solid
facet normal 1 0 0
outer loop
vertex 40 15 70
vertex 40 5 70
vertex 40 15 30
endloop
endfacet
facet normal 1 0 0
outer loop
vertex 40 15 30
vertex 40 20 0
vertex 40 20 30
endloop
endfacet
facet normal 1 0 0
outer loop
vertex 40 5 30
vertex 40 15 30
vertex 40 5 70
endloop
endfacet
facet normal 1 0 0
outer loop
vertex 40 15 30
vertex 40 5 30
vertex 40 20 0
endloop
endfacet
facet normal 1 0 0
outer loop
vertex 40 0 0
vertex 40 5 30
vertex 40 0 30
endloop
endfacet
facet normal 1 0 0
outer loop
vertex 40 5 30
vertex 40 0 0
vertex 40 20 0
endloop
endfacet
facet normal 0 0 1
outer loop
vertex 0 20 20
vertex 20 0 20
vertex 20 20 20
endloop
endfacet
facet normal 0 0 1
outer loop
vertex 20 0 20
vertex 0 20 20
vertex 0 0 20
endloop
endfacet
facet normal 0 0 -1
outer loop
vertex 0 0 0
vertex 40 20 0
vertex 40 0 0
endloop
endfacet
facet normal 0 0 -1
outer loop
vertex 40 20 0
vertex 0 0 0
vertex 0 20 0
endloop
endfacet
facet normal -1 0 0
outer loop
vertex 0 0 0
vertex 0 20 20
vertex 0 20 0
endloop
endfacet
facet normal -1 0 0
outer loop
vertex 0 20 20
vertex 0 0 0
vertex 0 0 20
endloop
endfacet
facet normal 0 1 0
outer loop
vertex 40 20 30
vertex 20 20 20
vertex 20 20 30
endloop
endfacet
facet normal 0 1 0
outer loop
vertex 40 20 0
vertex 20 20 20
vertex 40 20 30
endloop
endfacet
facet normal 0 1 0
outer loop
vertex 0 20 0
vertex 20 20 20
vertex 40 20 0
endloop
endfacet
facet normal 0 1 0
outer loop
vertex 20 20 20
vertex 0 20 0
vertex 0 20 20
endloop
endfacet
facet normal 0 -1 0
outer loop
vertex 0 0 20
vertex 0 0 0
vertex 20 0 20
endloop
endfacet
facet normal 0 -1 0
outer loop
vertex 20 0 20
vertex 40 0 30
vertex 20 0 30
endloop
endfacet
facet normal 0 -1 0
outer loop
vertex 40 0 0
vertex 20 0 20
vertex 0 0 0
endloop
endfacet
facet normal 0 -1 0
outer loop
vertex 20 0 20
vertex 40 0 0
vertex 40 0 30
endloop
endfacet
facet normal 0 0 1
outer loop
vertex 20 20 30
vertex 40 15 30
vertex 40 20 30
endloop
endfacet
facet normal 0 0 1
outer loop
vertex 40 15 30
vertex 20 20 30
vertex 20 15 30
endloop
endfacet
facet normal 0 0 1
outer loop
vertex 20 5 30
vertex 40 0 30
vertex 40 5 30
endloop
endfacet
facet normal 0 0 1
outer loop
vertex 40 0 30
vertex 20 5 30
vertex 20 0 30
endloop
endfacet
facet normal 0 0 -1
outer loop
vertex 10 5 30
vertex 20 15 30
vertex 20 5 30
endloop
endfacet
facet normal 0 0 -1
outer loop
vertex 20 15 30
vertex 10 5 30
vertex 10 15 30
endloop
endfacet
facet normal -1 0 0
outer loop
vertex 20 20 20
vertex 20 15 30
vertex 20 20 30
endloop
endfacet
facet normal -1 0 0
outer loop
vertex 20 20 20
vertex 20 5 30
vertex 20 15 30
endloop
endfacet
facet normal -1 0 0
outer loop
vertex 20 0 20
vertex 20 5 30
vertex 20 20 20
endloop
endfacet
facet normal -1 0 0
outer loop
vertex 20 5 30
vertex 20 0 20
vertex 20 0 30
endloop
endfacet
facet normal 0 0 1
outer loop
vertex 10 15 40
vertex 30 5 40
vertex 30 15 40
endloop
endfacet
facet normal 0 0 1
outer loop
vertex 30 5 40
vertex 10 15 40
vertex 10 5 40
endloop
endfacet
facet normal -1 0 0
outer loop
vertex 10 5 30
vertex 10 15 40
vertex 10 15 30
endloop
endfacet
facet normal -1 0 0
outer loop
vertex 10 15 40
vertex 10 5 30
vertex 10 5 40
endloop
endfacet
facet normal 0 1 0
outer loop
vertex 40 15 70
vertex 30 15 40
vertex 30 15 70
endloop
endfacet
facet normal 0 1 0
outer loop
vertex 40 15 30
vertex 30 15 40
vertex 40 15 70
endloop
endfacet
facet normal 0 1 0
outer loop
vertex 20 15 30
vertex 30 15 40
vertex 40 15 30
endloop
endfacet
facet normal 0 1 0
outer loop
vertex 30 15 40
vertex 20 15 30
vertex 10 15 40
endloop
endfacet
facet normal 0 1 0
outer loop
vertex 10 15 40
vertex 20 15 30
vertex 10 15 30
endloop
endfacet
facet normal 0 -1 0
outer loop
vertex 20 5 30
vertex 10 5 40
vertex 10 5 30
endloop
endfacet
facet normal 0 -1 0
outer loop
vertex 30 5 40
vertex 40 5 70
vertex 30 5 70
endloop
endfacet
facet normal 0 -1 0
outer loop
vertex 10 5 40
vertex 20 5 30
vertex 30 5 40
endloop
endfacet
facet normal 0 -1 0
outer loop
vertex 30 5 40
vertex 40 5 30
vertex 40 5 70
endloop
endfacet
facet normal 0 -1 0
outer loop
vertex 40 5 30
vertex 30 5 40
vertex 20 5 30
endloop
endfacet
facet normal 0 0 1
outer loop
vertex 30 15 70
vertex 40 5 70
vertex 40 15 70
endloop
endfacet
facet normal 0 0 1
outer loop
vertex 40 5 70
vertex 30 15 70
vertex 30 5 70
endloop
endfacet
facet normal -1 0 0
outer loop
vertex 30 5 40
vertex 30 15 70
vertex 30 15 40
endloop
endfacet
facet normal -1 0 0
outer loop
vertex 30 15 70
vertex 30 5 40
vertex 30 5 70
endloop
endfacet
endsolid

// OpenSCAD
// Base block module
module base_block() {
    // Main rectangular block
    cube([40, 20, 20], center = false);
    // Protruding rectangular section
    translate([20, 0, 20])
        cube([20, 20, 10], center = false);
}

// L-shaped connector module
module l_shaped_connector() {
    // Horizontal arm
    cube([30, 10, 10], center = false);
    // Vertical arm
    translate([20, 0, 10])
        cube([10, 10, 30], center = false);
}

// Assembly
module assembly() {
    // Layer 1: Base block
    base_block();

    // Layer 2: L-shaped connector
    translate([10, 5, 30]) // Positioning above the base block
        l_shaped_connector();
}

// Render the assembly
assembly();
